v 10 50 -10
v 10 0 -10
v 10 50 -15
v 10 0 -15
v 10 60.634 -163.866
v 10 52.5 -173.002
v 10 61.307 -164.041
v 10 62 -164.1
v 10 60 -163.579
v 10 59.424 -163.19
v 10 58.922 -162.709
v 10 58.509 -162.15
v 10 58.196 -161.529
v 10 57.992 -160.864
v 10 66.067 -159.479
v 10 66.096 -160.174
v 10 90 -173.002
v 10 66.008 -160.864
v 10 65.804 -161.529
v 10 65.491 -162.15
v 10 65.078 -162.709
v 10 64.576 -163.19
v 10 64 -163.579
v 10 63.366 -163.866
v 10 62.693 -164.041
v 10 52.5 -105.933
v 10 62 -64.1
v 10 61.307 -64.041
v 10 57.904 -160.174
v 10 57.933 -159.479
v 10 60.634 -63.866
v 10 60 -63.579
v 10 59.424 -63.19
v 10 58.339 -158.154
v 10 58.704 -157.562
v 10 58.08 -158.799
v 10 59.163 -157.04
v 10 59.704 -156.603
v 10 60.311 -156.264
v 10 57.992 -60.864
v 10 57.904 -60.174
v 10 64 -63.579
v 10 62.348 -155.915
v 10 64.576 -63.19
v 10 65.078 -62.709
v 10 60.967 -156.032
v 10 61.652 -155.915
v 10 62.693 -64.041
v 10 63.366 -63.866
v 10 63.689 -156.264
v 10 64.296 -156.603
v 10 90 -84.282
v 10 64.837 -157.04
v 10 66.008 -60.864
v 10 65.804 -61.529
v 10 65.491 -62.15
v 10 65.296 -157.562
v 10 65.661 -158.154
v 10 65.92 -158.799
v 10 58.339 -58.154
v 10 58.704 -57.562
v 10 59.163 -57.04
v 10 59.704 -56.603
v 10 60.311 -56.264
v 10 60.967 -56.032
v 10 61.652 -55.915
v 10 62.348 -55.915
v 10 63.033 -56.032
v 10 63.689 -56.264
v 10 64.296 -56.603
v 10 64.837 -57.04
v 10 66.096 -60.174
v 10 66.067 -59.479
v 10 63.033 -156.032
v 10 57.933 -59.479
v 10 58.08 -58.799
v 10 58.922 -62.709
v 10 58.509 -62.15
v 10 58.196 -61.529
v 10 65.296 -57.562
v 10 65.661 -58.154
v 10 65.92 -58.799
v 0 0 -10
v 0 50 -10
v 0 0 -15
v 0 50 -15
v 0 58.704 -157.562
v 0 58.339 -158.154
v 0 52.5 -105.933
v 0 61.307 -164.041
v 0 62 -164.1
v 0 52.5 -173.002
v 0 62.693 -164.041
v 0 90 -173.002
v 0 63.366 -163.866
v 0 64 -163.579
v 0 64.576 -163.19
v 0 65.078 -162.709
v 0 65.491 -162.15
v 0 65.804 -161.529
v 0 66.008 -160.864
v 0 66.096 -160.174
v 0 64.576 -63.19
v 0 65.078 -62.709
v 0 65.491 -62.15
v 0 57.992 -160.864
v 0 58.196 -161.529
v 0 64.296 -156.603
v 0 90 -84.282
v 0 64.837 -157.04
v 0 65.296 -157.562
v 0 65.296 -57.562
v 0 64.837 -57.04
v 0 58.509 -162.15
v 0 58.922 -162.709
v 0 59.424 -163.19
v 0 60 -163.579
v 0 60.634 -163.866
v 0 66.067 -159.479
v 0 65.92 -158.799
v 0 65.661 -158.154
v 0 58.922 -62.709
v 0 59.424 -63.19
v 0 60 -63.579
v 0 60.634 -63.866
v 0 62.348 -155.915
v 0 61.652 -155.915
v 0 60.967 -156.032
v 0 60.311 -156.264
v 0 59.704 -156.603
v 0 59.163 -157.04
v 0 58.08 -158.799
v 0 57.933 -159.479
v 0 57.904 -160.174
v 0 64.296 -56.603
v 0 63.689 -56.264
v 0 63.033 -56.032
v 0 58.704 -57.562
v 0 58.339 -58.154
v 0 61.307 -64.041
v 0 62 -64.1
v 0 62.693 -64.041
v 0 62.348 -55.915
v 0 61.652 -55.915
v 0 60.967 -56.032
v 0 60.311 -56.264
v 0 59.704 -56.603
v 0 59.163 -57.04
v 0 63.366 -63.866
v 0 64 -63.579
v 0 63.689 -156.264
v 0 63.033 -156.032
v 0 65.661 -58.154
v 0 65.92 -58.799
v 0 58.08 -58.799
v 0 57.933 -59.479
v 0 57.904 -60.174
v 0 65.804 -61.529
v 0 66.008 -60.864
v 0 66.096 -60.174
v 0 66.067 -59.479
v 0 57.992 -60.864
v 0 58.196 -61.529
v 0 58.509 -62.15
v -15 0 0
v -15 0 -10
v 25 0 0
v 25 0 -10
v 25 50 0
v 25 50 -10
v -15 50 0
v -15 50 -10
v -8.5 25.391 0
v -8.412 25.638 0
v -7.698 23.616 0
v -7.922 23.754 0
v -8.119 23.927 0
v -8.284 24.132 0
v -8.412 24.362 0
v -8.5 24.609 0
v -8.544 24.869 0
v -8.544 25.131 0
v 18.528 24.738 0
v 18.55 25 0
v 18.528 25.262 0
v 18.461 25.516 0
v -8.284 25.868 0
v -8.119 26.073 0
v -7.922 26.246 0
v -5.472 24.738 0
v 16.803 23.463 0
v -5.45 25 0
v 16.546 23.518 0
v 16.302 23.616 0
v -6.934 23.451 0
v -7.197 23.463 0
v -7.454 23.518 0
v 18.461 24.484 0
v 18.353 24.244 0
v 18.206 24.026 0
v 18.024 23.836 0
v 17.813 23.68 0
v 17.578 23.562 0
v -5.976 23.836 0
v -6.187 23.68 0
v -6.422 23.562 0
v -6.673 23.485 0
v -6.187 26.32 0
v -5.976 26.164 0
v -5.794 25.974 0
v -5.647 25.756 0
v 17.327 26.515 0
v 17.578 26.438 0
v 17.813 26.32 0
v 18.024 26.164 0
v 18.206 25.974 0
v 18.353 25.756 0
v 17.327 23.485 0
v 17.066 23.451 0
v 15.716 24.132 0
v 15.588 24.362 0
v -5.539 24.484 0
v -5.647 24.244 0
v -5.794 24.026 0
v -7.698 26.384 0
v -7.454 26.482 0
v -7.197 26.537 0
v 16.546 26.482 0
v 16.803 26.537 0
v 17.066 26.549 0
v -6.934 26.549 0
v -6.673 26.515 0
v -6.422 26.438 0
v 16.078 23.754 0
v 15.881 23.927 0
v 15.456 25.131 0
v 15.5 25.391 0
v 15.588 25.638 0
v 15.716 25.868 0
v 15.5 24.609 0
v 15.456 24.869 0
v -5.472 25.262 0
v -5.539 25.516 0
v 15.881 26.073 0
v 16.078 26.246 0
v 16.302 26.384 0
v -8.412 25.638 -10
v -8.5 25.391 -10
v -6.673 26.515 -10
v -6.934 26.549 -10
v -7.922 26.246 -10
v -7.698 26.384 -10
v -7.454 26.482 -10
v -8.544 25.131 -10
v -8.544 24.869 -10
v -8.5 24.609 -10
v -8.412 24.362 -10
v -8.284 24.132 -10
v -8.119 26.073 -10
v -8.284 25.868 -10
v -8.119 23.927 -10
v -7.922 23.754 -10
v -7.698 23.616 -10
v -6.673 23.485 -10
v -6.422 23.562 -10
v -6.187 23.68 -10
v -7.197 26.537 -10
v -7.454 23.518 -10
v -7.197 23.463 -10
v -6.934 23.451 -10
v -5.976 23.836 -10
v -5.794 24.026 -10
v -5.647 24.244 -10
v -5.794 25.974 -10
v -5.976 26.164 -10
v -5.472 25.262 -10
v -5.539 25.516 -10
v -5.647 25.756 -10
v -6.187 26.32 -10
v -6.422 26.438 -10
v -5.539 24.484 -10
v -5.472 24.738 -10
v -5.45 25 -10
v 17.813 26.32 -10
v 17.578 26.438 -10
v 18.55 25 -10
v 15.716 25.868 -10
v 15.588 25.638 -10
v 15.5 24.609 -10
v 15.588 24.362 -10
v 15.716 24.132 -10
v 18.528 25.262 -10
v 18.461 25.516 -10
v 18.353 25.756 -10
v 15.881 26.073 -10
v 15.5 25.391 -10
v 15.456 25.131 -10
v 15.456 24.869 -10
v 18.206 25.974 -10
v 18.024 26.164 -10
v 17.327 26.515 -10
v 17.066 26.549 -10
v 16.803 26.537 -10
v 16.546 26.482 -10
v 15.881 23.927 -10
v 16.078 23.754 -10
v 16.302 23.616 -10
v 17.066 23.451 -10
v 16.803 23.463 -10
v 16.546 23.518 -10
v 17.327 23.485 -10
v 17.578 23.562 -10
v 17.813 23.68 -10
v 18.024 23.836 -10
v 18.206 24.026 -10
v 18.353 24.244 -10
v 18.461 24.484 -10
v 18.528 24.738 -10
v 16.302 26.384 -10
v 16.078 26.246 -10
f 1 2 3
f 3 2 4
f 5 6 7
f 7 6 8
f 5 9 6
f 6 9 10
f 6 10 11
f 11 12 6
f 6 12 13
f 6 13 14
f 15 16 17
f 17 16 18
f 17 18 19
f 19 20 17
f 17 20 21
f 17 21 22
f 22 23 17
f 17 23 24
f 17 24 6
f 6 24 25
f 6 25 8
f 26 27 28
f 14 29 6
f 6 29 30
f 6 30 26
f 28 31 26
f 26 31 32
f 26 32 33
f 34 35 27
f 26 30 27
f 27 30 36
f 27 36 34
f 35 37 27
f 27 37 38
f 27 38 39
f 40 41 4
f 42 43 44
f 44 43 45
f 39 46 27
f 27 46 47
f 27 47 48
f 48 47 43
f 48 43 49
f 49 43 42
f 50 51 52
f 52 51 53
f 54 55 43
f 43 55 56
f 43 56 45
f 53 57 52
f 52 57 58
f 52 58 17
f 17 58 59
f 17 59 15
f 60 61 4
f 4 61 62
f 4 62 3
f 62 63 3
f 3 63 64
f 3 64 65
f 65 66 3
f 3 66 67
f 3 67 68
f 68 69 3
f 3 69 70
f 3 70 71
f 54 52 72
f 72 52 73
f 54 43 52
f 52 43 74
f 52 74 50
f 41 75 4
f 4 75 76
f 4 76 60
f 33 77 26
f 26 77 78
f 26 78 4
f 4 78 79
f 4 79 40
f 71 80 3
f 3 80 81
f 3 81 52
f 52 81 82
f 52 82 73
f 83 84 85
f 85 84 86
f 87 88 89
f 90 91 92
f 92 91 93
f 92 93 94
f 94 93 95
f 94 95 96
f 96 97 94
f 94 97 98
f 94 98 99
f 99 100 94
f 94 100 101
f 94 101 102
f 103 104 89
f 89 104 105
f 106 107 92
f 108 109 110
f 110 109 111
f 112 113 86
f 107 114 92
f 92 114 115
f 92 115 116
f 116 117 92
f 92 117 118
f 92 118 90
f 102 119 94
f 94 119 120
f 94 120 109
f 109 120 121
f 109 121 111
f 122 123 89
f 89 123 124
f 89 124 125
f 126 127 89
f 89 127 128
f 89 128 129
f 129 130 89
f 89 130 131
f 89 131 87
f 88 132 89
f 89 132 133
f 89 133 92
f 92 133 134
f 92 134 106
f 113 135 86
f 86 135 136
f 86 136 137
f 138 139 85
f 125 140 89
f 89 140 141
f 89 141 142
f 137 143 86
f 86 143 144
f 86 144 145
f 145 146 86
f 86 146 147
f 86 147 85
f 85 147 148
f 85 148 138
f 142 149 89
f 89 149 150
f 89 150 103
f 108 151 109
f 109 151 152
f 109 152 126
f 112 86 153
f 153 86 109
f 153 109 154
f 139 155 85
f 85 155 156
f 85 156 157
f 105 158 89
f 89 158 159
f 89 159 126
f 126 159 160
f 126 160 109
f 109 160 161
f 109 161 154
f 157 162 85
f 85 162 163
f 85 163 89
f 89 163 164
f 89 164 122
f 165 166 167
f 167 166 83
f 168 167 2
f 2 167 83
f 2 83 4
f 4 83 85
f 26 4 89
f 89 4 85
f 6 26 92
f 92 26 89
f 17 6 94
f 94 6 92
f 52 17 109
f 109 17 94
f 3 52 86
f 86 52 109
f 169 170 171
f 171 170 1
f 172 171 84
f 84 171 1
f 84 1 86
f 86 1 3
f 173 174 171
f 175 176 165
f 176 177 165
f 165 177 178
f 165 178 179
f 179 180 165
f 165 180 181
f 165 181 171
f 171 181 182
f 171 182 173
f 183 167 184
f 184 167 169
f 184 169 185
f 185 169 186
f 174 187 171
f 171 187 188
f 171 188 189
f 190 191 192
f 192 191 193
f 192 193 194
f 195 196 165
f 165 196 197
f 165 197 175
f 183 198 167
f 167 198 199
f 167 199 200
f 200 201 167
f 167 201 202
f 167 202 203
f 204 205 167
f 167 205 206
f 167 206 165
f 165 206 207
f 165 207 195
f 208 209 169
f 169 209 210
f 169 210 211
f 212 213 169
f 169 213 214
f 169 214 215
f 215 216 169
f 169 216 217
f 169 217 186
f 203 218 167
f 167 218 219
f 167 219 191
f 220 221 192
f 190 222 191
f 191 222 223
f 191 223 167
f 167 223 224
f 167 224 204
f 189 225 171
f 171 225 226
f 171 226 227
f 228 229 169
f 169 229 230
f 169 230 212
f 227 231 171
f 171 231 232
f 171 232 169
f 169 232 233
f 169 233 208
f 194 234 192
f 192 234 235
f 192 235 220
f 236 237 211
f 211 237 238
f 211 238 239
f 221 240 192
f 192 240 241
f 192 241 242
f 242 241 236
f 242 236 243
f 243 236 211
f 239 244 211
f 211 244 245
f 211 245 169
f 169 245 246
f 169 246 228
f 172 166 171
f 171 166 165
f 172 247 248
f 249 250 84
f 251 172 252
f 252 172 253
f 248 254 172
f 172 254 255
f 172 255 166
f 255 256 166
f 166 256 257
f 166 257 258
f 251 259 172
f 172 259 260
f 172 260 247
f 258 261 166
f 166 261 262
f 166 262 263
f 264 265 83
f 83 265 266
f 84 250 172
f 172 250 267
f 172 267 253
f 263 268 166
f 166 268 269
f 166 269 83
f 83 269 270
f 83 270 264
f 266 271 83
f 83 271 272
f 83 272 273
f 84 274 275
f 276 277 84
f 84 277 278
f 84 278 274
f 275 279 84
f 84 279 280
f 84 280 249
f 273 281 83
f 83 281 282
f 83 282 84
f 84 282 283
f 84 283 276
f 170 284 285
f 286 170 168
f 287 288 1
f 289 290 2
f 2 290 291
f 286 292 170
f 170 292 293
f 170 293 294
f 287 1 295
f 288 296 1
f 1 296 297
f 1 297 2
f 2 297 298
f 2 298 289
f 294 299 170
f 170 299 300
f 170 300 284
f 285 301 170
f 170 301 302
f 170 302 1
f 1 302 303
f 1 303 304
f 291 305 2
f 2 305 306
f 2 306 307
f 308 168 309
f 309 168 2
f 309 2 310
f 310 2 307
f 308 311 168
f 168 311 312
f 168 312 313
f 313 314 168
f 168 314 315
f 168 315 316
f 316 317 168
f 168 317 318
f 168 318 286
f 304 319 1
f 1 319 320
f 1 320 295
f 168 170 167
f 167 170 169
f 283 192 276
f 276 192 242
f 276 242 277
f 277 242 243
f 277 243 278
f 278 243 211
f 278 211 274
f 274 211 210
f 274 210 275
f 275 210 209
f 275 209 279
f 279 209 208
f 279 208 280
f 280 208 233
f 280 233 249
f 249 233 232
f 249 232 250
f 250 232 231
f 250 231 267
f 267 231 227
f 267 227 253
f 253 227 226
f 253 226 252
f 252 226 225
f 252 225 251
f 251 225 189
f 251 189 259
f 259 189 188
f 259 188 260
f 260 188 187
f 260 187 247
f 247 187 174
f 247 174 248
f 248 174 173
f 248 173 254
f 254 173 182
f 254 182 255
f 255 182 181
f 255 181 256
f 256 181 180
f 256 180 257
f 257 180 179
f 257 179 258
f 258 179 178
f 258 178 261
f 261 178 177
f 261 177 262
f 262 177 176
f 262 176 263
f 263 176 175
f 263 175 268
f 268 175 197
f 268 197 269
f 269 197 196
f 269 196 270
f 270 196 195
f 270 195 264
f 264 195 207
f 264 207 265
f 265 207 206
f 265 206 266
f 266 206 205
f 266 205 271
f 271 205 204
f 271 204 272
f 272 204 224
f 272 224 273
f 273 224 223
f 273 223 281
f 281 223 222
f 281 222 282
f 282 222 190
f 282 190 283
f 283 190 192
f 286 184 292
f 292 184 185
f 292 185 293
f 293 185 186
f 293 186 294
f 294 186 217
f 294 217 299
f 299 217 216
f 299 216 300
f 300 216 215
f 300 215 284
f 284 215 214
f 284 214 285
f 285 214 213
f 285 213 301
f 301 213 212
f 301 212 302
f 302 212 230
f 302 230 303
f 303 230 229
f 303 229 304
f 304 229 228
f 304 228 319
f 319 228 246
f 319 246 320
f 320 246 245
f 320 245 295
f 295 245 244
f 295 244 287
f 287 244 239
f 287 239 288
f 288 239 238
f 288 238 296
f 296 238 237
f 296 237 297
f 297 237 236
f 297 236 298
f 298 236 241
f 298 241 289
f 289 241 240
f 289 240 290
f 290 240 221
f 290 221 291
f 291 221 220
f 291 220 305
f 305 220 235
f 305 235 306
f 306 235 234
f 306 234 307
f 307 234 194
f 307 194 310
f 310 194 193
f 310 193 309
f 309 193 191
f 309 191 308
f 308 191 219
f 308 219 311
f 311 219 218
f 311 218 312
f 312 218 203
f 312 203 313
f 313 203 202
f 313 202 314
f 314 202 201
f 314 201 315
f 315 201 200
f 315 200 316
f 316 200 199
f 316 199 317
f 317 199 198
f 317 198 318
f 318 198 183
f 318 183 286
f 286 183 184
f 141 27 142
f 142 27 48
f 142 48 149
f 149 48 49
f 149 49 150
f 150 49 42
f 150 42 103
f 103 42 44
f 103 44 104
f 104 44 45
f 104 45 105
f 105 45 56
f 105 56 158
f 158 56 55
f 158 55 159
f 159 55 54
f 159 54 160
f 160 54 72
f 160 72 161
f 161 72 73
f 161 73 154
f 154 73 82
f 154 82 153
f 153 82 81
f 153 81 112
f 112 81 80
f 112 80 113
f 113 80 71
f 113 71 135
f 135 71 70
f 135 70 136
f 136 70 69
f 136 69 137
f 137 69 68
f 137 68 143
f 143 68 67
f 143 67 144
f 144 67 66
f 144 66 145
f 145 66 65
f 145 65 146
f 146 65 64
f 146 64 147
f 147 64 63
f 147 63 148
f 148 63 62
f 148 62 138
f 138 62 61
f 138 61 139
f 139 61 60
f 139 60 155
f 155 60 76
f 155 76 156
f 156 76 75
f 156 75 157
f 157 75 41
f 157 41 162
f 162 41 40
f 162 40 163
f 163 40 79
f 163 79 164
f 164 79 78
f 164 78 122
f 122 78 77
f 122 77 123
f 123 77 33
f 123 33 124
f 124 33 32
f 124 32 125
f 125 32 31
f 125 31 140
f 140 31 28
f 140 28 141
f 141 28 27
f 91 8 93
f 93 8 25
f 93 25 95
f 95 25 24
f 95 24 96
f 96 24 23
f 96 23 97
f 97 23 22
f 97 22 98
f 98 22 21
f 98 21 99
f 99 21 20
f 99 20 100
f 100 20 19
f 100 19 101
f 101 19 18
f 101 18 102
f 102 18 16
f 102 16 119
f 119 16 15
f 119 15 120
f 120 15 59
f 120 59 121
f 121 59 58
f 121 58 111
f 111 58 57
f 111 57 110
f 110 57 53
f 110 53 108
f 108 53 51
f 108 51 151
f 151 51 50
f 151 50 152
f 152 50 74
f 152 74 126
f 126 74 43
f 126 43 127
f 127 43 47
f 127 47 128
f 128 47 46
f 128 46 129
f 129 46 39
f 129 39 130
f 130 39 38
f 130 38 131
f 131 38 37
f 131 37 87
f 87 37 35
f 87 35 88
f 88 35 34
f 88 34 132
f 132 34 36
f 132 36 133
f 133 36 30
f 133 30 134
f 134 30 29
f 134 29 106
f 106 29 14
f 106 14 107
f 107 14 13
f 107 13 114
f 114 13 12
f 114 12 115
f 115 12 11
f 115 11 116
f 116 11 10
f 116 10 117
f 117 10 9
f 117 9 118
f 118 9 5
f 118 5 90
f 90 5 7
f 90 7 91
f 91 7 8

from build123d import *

# Parameters (mm, degrees)
SALIENTE_EXTRUIR1_DEPTH = 10
SALIENTE_EXTRUIR2_DEPTH = 10
CROQUIS3_R              = 1.55
CORTAR_EXTRUIR1_DEPTH   = 10
CROQUIS4_R              = 4.1
CORTAR_EXTRUIR2_DEPTH   = 10


with BuildPart() as part:
    # Croquis1 → Saliente-Extruir1 (new body)
    with BuildSketch(Plane(origin=(0, 0, 0), x_dir=(0, 0, -1), z_dir=(1, 0, 0))):
        Polygon((0, 0), (0, 50), (15, 50), (84.282032303, 90), (173.002060716, 90), (173.002060716, 52.5), (105.932667397, 52.5), (15, 0), align=None)
    extrude(amount=SALIENTE_EXTRUIR1_DEPTH)

    # Croquis2 → Saliente-Extruir2 (add)
    with BuildSketch(Plane.XY):
        Polygon((0, 50), (-15, 50), (-15, 0), (25, 0), (25, 50), align=None)
    extrude(amount=-SALIENTE_EXTRUIR2_DEPTH)

    # Croquis3 → Cortar-Extruir1 (cut)
    with BuildSketch(Plane.XY):
        with Locations((-7, 25)):
            Circle(CROQUIS3_R)
        with Locations((17, 25)):
            Circle(CROQUIS3_R)
    extrude(amount=-CORTAR_EXTRUIR1_DEPTH, mode=Mode.SUBTRACT)

    # Croquis4 → Cortar-Extruir2 (cut)
    with BuildSketch(Plane(origin=(10, 0, 0), x_dir=(0, 0, -1), z_dir=(1, 0, 0))):
        with Locations((60, 62)):
            Circle(CROQUIS4_R)
        with Locations((160, 62)):
            Circle(CROQUIS4_R)
    extrude(amount=-CORTAR_EXTRUIR2_DEPTH, mode=Mode.SUBTRACT)


solid = part.part
